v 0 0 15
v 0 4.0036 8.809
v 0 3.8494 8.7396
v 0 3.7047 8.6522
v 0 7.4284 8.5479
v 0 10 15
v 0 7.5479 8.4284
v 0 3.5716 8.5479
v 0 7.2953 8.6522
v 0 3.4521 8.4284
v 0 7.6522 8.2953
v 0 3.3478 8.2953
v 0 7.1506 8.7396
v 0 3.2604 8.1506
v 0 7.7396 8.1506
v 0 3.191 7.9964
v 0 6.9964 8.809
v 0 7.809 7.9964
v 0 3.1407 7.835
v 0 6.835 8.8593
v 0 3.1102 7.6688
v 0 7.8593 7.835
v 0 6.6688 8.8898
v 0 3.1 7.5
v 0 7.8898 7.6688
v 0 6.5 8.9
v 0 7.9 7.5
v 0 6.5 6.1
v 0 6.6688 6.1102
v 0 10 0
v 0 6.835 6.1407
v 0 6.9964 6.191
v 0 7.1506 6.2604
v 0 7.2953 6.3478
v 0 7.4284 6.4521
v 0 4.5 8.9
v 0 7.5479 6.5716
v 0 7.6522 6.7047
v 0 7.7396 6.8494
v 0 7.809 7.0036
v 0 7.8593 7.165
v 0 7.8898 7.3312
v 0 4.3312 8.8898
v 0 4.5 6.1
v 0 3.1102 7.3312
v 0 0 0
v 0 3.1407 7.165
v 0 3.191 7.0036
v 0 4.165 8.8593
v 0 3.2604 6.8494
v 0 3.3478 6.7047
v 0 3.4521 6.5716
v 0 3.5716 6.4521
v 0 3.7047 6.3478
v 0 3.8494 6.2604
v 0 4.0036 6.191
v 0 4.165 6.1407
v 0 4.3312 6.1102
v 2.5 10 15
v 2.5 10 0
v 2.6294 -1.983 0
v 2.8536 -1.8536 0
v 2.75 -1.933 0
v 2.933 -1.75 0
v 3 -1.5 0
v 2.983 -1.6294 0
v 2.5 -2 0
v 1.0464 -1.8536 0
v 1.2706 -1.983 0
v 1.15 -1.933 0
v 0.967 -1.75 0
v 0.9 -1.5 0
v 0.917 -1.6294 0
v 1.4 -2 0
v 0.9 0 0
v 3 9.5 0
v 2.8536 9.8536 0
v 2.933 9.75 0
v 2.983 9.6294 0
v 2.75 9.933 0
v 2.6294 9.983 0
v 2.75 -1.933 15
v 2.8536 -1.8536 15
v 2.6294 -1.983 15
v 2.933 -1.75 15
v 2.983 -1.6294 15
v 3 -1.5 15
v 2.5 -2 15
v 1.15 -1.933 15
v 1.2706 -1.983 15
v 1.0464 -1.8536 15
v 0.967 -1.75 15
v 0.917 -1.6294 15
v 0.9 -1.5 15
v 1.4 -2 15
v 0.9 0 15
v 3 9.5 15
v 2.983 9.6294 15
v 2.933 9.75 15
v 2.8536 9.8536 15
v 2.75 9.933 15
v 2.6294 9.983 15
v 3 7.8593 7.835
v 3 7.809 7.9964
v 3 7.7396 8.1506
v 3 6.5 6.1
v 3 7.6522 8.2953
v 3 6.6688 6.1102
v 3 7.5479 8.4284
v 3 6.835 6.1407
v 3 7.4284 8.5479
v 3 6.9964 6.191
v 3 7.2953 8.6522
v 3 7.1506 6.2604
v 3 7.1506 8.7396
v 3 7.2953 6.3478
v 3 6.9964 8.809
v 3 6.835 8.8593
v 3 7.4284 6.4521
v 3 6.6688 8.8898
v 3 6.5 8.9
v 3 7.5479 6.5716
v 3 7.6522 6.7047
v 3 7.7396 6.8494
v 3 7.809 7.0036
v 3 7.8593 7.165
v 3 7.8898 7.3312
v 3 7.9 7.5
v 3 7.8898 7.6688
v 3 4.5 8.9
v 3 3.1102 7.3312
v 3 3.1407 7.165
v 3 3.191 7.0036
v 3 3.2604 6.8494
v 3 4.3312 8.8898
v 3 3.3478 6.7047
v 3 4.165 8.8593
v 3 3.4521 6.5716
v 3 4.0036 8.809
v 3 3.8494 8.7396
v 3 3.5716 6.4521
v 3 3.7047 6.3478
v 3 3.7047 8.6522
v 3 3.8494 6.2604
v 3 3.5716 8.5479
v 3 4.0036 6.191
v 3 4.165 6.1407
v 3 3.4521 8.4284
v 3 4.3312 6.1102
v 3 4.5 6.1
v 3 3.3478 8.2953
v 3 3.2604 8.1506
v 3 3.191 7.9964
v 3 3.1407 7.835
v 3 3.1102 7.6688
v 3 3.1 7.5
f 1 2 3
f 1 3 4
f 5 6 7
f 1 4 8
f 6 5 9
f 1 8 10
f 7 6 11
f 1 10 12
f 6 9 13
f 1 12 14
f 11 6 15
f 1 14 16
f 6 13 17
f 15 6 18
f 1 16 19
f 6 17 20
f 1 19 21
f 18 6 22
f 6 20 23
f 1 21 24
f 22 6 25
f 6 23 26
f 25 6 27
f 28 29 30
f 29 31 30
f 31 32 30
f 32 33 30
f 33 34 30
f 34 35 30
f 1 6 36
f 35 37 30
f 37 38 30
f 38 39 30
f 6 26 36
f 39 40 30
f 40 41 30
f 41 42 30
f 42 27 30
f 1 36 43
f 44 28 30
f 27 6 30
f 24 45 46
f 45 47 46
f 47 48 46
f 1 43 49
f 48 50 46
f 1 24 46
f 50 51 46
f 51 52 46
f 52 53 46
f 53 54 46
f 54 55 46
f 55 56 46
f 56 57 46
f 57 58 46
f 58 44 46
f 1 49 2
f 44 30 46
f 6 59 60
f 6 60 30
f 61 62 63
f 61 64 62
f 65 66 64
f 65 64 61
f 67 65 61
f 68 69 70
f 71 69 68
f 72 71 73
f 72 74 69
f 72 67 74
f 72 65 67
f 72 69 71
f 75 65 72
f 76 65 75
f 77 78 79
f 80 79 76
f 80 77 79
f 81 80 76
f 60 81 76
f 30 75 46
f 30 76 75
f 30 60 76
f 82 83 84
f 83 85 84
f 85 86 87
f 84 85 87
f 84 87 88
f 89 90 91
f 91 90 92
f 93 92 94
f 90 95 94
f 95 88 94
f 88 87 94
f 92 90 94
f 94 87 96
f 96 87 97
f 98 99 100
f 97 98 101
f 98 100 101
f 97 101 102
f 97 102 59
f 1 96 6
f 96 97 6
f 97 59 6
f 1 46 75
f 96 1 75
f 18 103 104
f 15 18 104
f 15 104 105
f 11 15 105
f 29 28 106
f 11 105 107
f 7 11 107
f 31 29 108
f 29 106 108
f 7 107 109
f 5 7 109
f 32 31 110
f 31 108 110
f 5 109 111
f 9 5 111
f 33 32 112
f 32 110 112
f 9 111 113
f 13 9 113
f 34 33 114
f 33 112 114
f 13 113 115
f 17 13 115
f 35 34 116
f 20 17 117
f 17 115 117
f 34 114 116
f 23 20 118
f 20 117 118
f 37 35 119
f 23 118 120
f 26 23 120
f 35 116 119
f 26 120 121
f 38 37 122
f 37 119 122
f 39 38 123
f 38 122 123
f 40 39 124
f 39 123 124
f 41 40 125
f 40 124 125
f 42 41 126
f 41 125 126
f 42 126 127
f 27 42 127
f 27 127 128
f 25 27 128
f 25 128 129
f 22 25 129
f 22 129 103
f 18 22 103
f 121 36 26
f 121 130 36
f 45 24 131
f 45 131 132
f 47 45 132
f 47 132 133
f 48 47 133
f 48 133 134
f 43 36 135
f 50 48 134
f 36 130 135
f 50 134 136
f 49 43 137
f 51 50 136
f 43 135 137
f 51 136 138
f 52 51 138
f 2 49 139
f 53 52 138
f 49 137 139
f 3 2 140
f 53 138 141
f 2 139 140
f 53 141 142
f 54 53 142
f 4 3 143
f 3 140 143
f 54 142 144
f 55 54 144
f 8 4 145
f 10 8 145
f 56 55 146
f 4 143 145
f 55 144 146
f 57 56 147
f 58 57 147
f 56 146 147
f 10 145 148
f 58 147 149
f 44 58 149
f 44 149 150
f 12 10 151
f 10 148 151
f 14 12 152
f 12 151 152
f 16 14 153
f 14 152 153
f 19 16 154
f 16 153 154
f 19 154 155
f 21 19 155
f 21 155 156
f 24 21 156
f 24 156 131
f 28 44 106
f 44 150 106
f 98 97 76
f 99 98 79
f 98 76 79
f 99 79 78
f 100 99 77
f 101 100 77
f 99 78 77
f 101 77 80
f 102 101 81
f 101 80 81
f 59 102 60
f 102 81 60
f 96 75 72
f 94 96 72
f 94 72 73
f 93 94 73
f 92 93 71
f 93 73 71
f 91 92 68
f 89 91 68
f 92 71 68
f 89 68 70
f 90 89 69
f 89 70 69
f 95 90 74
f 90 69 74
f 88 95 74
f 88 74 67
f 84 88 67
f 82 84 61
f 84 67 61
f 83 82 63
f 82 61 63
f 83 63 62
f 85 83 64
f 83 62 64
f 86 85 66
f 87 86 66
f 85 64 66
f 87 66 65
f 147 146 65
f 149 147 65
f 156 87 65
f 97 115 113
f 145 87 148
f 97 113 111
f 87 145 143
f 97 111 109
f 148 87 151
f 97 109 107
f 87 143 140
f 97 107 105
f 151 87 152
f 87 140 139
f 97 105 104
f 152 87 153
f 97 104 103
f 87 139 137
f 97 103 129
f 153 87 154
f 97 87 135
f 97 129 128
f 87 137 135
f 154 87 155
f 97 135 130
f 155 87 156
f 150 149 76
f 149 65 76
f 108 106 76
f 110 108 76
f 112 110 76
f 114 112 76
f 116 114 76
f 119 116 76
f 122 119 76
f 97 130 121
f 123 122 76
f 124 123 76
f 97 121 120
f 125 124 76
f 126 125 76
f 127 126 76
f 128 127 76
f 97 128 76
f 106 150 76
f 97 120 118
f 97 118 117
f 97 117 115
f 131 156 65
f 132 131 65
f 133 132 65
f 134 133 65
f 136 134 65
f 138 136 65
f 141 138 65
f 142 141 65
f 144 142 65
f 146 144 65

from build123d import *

# Parameters (mm, degrees)
PAD_DEPTH    = 15
POCKET_DEPTH = 3.001


with BuildPart() as part:
    # Sketch → Pad (new body)
    with BuildSketch(Plane.XY):
        with BuildLine():
            Line((0, 10), (0, 0))
            Line((0, 0), (0.9, 0))
            Line((0.9, 0), (0.9, -1.5))
            ThreePointArc((0.9, -1.5), (1.046447, -1.853553), (1.4, -2))
            Line((1.4, -2), (2.5, -2))
            ThreePointArc((2.5, -2), (2.853553, -1.853553), (3, -1.5))
            Line((3, -1.5), (3, 9.5))
            ThreePointArc((3, 9.5), (2.853553, 9.853553), (2.5, 10))
            Line((2.5, 10), (0, 10))
        make_face()
    extrude(amount=PAD_DEPTH)

    # Sketch001 → Pocket (cut, through all)
    with BuildSketch(Plane.YZ.offset(3)):
        with BuildLine():
            ThreePointArc((4.5, 8.9), (3.1, 7.5), (4.5, 6.1))
            Line((4.5, 6.1), (6.5, 6.1))
            ThreePointArc((6.5, 6.1), (7.9, 7.5), (6.5, 8.9))
            Line((4.5, 8.9), (6.5, 8.9))
        make_face()
    extrude(amount=-POCKET_DEPTH, mode=Mode.SUBTRACT)


solid = part.part
